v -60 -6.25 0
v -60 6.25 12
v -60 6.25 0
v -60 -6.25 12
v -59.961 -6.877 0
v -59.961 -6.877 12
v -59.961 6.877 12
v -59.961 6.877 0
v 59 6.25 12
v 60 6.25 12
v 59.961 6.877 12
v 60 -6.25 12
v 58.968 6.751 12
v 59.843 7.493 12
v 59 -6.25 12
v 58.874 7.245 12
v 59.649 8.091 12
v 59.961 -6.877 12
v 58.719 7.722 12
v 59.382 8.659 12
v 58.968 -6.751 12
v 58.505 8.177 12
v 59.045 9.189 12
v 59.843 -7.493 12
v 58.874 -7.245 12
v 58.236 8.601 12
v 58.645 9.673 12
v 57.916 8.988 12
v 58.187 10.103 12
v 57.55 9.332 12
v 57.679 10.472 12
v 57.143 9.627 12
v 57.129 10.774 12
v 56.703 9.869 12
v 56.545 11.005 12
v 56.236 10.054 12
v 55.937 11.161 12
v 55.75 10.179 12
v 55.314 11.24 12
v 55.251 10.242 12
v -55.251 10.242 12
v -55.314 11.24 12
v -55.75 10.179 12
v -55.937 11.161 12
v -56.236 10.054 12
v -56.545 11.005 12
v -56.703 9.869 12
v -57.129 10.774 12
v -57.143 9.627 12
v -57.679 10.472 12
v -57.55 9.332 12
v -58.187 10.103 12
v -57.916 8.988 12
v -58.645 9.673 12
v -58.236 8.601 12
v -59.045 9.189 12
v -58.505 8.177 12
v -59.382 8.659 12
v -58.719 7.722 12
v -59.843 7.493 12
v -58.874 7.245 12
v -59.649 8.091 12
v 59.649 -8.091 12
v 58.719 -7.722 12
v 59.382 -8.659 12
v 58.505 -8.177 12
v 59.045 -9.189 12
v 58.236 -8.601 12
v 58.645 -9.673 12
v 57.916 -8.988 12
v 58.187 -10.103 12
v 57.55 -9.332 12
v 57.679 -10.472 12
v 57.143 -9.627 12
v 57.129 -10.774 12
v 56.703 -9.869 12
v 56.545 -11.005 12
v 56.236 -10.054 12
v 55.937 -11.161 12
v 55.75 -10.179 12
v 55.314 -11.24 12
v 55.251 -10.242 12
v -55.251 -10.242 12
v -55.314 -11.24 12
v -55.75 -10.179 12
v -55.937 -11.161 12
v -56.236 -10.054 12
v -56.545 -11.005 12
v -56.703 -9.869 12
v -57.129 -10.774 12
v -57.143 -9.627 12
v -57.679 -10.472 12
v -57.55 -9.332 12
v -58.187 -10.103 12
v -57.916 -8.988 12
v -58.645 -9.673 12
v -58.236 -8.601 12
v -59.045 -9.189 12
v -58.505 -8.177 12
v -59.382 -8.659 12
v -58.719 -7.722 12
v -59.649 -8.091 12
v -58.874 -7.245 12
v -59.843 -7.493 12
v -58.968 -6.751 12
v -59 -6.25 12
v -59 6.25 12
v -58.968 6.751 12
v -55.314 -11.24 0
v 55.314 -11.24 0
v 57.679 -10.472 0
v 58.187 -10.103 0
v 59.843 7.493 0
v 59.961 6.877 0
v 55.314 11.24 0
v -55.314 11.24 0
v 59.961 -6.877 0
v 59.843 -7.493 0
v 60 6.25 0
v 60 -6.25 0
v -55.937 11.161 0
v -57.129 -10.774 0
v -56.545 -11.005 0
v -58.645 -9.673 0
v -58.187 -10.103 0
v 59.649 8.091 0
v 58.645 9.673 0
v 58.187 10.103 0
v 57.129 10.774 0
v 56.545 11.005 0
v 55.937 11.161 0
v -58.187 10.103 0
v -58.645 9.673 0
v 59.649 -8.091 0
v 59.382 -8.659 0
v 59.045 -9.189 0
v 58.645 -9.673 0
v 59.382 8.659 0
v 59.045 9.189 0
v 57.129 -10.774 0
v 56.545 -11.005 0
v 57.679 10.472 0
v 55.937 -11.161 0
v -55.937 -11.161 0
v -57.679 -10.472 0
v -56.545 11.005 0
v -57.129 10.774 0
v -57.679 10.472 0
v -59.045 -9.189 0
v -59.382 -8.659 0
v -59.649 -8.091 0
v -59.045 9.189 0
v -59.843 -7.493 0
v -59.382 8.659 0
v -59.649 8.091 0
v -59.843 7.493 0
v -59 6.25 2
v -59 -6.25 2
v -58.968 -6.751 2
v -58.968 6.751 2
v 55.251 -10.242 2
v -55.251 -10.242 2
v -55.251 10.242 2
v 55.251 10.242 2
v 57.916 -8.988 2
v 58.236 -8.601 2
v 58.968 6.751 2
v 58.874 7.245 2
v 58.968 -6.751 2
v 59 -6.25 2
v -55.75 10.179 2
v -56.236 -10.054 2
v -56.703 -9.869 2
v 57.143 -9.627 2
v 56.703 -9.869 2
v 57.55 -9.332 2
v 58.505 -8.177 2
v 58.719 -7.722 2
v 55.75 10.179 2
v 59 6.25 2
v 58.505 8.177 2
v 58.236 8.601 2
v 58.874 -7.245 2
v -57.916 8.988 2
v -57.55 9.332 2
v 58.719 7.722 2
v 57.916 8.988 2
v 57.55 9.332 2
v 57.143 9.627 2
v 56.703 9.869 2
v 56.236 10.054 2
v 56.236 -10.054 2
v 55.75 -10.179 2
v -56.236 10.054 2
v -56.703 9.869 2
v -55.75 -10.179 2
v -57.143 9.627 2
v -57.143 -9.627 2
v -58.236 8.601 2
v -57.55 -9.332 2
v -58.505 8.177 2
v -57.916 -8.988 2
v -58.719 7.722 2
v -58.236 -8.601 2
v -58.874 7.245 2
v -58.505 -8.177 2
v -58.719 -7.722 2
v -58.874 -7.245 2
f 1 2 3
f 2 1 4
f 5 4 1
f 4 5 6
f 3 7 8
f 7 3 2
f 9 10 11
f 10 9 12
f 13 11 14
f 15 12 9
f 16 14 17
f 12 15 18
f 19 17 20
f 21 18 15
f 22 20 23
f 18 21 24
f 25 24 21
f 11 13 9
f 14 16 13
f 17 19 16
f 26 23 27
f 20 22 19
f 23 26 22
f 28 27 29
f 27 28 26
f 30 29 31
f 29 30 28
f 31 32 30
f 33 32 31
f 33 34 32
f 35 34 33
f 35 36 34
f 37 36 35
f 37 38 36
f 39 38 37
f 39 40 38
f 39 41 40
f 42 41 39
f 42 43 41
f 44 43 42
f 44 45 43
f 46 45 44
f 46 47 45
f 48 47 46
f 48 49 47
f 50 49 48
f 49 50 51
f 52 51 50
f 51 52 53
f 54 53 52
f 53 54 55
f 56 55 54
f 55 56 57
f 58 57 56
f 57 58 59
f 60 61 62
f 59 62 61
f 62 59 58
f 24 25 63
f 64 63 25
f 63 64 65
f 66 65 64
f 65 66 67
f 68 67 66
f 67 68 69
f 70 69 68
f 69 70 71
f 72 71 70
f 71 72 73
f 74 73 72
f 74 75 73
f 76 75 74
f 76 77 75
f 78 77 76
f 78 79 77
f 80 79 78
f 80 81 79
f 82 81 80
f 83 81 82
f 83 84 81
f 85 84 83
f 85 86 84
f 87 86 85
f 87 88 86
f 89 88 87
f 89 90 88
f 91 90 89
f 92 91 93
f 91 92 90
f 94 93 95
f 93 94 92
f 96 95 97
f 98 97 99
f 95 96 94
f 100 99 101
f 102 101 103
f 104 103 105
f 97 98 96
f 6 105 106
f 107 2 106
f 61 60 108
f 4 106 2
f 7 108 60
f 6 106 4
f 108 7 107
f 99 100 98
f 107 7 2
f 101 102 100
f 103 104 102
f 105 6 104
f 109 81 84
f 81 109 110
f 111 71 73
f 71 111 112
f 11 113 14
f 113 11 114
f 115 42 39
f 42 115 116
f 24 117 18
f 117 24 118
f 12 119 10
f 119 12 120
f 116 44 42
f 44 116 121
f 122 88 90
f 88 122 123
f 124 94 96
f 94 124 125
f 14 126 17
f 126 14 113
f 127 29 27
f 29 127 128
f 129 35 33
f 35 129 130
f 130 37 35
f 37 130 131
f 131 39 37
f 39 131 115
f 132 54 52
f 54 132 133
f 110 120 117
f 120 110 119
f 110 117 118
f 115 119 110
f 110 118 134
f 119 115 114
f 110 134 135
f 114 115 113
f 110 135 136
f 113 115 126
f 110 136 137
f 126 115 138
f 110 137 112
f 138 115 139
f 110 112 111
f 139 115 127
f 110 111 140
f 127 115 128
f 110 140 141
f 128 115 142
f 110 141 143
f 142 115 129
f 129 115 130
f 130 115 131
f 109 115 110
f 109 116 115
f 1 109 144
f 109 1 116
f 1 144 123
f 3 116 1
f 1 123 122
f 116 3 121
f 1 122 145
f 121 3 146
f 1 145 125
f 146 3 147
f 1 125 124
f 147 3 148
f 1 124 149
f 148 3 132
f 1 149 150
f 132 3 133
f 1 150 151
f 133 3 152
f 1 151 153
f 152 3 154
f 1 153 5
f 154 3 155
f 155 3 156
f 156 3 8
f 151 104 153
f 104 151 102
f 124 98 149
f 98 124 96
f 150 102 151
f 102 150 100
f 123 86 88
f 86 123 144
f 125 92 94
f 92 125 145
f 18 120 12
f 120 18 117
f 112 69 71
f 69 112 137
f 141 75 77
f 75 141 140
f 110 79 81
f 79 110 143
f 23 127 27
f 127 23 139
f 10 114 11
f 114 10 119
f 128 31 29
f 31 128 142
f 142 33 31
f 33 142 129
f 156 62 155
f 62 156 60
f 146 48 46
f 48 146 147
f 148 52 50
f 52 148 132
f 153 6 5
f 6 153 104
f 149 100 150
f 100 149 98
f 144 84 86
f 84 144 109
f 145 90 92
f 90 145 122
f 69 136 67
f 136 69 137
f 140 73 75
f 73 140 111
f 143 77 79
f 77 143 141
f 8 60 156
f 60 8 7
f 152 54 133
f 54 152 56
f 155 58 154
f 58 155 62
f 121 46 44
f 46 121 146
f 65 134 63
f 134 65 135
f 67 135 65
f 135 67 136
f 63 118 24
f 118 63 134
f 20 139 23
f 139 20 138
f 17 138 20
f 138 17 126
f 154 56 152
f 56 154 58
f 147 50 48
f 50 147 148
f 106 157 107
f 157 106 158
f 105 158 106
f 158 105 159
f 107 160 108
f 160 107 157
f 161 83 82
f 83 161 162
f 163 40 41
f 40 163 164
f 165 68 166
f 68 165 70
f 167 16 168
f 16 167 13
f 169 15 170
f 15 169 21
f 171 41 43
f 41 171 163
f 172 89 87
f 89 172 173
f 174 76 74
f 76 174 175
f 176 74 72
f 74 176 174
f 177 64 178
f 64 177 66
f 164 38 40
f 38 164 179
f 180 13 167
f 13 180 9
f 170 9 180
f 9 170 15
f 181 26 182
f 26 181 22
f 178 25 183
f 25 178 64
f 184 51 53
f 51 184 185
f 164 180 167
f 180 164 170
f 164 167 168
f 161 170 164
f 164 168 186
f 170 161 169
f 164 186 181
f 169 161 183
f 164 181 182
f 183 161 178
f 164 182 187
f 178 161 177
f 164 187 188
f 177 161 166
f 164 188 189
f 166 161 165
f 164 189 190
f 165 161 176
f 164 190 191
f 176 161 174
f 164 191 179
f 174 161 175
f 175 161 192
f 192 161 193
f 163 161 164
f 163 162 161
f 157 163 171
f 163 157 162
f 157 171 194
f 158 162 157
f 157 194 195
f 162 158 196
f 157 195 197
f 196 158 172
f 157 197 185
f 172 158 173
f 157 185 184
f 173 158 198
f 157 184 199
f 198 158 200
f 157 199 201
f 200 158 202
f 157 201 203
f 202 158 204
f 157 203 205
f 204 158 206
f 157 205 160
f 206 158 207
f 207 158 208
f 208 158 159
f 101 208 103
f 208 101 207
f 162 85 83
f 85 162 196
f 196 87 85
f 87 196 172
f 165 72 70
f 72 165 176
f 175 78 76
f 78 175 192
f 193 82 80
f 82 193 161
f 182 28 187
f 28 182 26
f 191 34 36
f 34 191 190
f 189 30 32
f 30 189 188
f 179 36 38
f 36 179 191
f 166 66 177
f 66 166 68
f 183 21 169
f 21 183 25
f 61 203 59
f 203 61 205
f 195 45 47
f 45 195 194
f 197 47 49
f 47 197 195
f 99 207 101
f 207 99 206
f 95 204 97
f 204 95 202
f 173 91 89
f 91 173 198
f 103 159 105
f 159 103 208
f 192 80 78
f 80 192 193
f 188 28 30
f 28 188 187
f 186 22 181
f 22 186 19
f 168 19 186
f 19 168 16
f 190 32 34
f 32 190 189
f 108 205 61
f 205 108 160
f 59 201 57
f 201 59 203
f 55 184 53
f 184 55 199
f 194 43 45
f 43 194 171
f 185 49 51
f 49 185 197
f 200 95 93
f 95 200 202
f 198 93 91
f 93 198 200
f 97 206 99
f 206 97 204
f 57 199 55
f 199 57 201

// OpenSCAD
$fn = 50;


difference() {
	union() {
		hull() {
			translate(v = [-55.0000000000, 6.2500000000, 0]) {
				cylinder(h = 12, r = 5);
			}
			translate(v = [55.0000000000, 6.2500000000, 0]) {
				cylinder(h = 12, r = 5);
			}
			translate(v = [-55.0000000000, -6.2500000000, 0]) {
				cylinder(h = 12, r = 5);
			}
			translate(v = [55.0000000000, -6.2500000000, 0]) {
				cylinder(h = 12, r = 5);
			}
		}
	}
	union() {
		translate(v = [0, 0, 2]) {
			hull() {
				translate(v = [-55.0000000000, 6.2500000000, 0]) {
					cylinder(h = 10, r = 4);
				}
				translate(v = [55.0000000000, 6.2500000000, 0]) {
					cylinder(h = 10, r = 4);
				}
				translate(v = [-55.0000000000, -6.2500000000, 0]) {
					cylinder(h = 10, r = 4);
				}
				translate(v = [55.0000000000, -6.2500000000, 0]) {
					cylinder(h = 10, r = 4);
				}
			}
		}
	}
}
